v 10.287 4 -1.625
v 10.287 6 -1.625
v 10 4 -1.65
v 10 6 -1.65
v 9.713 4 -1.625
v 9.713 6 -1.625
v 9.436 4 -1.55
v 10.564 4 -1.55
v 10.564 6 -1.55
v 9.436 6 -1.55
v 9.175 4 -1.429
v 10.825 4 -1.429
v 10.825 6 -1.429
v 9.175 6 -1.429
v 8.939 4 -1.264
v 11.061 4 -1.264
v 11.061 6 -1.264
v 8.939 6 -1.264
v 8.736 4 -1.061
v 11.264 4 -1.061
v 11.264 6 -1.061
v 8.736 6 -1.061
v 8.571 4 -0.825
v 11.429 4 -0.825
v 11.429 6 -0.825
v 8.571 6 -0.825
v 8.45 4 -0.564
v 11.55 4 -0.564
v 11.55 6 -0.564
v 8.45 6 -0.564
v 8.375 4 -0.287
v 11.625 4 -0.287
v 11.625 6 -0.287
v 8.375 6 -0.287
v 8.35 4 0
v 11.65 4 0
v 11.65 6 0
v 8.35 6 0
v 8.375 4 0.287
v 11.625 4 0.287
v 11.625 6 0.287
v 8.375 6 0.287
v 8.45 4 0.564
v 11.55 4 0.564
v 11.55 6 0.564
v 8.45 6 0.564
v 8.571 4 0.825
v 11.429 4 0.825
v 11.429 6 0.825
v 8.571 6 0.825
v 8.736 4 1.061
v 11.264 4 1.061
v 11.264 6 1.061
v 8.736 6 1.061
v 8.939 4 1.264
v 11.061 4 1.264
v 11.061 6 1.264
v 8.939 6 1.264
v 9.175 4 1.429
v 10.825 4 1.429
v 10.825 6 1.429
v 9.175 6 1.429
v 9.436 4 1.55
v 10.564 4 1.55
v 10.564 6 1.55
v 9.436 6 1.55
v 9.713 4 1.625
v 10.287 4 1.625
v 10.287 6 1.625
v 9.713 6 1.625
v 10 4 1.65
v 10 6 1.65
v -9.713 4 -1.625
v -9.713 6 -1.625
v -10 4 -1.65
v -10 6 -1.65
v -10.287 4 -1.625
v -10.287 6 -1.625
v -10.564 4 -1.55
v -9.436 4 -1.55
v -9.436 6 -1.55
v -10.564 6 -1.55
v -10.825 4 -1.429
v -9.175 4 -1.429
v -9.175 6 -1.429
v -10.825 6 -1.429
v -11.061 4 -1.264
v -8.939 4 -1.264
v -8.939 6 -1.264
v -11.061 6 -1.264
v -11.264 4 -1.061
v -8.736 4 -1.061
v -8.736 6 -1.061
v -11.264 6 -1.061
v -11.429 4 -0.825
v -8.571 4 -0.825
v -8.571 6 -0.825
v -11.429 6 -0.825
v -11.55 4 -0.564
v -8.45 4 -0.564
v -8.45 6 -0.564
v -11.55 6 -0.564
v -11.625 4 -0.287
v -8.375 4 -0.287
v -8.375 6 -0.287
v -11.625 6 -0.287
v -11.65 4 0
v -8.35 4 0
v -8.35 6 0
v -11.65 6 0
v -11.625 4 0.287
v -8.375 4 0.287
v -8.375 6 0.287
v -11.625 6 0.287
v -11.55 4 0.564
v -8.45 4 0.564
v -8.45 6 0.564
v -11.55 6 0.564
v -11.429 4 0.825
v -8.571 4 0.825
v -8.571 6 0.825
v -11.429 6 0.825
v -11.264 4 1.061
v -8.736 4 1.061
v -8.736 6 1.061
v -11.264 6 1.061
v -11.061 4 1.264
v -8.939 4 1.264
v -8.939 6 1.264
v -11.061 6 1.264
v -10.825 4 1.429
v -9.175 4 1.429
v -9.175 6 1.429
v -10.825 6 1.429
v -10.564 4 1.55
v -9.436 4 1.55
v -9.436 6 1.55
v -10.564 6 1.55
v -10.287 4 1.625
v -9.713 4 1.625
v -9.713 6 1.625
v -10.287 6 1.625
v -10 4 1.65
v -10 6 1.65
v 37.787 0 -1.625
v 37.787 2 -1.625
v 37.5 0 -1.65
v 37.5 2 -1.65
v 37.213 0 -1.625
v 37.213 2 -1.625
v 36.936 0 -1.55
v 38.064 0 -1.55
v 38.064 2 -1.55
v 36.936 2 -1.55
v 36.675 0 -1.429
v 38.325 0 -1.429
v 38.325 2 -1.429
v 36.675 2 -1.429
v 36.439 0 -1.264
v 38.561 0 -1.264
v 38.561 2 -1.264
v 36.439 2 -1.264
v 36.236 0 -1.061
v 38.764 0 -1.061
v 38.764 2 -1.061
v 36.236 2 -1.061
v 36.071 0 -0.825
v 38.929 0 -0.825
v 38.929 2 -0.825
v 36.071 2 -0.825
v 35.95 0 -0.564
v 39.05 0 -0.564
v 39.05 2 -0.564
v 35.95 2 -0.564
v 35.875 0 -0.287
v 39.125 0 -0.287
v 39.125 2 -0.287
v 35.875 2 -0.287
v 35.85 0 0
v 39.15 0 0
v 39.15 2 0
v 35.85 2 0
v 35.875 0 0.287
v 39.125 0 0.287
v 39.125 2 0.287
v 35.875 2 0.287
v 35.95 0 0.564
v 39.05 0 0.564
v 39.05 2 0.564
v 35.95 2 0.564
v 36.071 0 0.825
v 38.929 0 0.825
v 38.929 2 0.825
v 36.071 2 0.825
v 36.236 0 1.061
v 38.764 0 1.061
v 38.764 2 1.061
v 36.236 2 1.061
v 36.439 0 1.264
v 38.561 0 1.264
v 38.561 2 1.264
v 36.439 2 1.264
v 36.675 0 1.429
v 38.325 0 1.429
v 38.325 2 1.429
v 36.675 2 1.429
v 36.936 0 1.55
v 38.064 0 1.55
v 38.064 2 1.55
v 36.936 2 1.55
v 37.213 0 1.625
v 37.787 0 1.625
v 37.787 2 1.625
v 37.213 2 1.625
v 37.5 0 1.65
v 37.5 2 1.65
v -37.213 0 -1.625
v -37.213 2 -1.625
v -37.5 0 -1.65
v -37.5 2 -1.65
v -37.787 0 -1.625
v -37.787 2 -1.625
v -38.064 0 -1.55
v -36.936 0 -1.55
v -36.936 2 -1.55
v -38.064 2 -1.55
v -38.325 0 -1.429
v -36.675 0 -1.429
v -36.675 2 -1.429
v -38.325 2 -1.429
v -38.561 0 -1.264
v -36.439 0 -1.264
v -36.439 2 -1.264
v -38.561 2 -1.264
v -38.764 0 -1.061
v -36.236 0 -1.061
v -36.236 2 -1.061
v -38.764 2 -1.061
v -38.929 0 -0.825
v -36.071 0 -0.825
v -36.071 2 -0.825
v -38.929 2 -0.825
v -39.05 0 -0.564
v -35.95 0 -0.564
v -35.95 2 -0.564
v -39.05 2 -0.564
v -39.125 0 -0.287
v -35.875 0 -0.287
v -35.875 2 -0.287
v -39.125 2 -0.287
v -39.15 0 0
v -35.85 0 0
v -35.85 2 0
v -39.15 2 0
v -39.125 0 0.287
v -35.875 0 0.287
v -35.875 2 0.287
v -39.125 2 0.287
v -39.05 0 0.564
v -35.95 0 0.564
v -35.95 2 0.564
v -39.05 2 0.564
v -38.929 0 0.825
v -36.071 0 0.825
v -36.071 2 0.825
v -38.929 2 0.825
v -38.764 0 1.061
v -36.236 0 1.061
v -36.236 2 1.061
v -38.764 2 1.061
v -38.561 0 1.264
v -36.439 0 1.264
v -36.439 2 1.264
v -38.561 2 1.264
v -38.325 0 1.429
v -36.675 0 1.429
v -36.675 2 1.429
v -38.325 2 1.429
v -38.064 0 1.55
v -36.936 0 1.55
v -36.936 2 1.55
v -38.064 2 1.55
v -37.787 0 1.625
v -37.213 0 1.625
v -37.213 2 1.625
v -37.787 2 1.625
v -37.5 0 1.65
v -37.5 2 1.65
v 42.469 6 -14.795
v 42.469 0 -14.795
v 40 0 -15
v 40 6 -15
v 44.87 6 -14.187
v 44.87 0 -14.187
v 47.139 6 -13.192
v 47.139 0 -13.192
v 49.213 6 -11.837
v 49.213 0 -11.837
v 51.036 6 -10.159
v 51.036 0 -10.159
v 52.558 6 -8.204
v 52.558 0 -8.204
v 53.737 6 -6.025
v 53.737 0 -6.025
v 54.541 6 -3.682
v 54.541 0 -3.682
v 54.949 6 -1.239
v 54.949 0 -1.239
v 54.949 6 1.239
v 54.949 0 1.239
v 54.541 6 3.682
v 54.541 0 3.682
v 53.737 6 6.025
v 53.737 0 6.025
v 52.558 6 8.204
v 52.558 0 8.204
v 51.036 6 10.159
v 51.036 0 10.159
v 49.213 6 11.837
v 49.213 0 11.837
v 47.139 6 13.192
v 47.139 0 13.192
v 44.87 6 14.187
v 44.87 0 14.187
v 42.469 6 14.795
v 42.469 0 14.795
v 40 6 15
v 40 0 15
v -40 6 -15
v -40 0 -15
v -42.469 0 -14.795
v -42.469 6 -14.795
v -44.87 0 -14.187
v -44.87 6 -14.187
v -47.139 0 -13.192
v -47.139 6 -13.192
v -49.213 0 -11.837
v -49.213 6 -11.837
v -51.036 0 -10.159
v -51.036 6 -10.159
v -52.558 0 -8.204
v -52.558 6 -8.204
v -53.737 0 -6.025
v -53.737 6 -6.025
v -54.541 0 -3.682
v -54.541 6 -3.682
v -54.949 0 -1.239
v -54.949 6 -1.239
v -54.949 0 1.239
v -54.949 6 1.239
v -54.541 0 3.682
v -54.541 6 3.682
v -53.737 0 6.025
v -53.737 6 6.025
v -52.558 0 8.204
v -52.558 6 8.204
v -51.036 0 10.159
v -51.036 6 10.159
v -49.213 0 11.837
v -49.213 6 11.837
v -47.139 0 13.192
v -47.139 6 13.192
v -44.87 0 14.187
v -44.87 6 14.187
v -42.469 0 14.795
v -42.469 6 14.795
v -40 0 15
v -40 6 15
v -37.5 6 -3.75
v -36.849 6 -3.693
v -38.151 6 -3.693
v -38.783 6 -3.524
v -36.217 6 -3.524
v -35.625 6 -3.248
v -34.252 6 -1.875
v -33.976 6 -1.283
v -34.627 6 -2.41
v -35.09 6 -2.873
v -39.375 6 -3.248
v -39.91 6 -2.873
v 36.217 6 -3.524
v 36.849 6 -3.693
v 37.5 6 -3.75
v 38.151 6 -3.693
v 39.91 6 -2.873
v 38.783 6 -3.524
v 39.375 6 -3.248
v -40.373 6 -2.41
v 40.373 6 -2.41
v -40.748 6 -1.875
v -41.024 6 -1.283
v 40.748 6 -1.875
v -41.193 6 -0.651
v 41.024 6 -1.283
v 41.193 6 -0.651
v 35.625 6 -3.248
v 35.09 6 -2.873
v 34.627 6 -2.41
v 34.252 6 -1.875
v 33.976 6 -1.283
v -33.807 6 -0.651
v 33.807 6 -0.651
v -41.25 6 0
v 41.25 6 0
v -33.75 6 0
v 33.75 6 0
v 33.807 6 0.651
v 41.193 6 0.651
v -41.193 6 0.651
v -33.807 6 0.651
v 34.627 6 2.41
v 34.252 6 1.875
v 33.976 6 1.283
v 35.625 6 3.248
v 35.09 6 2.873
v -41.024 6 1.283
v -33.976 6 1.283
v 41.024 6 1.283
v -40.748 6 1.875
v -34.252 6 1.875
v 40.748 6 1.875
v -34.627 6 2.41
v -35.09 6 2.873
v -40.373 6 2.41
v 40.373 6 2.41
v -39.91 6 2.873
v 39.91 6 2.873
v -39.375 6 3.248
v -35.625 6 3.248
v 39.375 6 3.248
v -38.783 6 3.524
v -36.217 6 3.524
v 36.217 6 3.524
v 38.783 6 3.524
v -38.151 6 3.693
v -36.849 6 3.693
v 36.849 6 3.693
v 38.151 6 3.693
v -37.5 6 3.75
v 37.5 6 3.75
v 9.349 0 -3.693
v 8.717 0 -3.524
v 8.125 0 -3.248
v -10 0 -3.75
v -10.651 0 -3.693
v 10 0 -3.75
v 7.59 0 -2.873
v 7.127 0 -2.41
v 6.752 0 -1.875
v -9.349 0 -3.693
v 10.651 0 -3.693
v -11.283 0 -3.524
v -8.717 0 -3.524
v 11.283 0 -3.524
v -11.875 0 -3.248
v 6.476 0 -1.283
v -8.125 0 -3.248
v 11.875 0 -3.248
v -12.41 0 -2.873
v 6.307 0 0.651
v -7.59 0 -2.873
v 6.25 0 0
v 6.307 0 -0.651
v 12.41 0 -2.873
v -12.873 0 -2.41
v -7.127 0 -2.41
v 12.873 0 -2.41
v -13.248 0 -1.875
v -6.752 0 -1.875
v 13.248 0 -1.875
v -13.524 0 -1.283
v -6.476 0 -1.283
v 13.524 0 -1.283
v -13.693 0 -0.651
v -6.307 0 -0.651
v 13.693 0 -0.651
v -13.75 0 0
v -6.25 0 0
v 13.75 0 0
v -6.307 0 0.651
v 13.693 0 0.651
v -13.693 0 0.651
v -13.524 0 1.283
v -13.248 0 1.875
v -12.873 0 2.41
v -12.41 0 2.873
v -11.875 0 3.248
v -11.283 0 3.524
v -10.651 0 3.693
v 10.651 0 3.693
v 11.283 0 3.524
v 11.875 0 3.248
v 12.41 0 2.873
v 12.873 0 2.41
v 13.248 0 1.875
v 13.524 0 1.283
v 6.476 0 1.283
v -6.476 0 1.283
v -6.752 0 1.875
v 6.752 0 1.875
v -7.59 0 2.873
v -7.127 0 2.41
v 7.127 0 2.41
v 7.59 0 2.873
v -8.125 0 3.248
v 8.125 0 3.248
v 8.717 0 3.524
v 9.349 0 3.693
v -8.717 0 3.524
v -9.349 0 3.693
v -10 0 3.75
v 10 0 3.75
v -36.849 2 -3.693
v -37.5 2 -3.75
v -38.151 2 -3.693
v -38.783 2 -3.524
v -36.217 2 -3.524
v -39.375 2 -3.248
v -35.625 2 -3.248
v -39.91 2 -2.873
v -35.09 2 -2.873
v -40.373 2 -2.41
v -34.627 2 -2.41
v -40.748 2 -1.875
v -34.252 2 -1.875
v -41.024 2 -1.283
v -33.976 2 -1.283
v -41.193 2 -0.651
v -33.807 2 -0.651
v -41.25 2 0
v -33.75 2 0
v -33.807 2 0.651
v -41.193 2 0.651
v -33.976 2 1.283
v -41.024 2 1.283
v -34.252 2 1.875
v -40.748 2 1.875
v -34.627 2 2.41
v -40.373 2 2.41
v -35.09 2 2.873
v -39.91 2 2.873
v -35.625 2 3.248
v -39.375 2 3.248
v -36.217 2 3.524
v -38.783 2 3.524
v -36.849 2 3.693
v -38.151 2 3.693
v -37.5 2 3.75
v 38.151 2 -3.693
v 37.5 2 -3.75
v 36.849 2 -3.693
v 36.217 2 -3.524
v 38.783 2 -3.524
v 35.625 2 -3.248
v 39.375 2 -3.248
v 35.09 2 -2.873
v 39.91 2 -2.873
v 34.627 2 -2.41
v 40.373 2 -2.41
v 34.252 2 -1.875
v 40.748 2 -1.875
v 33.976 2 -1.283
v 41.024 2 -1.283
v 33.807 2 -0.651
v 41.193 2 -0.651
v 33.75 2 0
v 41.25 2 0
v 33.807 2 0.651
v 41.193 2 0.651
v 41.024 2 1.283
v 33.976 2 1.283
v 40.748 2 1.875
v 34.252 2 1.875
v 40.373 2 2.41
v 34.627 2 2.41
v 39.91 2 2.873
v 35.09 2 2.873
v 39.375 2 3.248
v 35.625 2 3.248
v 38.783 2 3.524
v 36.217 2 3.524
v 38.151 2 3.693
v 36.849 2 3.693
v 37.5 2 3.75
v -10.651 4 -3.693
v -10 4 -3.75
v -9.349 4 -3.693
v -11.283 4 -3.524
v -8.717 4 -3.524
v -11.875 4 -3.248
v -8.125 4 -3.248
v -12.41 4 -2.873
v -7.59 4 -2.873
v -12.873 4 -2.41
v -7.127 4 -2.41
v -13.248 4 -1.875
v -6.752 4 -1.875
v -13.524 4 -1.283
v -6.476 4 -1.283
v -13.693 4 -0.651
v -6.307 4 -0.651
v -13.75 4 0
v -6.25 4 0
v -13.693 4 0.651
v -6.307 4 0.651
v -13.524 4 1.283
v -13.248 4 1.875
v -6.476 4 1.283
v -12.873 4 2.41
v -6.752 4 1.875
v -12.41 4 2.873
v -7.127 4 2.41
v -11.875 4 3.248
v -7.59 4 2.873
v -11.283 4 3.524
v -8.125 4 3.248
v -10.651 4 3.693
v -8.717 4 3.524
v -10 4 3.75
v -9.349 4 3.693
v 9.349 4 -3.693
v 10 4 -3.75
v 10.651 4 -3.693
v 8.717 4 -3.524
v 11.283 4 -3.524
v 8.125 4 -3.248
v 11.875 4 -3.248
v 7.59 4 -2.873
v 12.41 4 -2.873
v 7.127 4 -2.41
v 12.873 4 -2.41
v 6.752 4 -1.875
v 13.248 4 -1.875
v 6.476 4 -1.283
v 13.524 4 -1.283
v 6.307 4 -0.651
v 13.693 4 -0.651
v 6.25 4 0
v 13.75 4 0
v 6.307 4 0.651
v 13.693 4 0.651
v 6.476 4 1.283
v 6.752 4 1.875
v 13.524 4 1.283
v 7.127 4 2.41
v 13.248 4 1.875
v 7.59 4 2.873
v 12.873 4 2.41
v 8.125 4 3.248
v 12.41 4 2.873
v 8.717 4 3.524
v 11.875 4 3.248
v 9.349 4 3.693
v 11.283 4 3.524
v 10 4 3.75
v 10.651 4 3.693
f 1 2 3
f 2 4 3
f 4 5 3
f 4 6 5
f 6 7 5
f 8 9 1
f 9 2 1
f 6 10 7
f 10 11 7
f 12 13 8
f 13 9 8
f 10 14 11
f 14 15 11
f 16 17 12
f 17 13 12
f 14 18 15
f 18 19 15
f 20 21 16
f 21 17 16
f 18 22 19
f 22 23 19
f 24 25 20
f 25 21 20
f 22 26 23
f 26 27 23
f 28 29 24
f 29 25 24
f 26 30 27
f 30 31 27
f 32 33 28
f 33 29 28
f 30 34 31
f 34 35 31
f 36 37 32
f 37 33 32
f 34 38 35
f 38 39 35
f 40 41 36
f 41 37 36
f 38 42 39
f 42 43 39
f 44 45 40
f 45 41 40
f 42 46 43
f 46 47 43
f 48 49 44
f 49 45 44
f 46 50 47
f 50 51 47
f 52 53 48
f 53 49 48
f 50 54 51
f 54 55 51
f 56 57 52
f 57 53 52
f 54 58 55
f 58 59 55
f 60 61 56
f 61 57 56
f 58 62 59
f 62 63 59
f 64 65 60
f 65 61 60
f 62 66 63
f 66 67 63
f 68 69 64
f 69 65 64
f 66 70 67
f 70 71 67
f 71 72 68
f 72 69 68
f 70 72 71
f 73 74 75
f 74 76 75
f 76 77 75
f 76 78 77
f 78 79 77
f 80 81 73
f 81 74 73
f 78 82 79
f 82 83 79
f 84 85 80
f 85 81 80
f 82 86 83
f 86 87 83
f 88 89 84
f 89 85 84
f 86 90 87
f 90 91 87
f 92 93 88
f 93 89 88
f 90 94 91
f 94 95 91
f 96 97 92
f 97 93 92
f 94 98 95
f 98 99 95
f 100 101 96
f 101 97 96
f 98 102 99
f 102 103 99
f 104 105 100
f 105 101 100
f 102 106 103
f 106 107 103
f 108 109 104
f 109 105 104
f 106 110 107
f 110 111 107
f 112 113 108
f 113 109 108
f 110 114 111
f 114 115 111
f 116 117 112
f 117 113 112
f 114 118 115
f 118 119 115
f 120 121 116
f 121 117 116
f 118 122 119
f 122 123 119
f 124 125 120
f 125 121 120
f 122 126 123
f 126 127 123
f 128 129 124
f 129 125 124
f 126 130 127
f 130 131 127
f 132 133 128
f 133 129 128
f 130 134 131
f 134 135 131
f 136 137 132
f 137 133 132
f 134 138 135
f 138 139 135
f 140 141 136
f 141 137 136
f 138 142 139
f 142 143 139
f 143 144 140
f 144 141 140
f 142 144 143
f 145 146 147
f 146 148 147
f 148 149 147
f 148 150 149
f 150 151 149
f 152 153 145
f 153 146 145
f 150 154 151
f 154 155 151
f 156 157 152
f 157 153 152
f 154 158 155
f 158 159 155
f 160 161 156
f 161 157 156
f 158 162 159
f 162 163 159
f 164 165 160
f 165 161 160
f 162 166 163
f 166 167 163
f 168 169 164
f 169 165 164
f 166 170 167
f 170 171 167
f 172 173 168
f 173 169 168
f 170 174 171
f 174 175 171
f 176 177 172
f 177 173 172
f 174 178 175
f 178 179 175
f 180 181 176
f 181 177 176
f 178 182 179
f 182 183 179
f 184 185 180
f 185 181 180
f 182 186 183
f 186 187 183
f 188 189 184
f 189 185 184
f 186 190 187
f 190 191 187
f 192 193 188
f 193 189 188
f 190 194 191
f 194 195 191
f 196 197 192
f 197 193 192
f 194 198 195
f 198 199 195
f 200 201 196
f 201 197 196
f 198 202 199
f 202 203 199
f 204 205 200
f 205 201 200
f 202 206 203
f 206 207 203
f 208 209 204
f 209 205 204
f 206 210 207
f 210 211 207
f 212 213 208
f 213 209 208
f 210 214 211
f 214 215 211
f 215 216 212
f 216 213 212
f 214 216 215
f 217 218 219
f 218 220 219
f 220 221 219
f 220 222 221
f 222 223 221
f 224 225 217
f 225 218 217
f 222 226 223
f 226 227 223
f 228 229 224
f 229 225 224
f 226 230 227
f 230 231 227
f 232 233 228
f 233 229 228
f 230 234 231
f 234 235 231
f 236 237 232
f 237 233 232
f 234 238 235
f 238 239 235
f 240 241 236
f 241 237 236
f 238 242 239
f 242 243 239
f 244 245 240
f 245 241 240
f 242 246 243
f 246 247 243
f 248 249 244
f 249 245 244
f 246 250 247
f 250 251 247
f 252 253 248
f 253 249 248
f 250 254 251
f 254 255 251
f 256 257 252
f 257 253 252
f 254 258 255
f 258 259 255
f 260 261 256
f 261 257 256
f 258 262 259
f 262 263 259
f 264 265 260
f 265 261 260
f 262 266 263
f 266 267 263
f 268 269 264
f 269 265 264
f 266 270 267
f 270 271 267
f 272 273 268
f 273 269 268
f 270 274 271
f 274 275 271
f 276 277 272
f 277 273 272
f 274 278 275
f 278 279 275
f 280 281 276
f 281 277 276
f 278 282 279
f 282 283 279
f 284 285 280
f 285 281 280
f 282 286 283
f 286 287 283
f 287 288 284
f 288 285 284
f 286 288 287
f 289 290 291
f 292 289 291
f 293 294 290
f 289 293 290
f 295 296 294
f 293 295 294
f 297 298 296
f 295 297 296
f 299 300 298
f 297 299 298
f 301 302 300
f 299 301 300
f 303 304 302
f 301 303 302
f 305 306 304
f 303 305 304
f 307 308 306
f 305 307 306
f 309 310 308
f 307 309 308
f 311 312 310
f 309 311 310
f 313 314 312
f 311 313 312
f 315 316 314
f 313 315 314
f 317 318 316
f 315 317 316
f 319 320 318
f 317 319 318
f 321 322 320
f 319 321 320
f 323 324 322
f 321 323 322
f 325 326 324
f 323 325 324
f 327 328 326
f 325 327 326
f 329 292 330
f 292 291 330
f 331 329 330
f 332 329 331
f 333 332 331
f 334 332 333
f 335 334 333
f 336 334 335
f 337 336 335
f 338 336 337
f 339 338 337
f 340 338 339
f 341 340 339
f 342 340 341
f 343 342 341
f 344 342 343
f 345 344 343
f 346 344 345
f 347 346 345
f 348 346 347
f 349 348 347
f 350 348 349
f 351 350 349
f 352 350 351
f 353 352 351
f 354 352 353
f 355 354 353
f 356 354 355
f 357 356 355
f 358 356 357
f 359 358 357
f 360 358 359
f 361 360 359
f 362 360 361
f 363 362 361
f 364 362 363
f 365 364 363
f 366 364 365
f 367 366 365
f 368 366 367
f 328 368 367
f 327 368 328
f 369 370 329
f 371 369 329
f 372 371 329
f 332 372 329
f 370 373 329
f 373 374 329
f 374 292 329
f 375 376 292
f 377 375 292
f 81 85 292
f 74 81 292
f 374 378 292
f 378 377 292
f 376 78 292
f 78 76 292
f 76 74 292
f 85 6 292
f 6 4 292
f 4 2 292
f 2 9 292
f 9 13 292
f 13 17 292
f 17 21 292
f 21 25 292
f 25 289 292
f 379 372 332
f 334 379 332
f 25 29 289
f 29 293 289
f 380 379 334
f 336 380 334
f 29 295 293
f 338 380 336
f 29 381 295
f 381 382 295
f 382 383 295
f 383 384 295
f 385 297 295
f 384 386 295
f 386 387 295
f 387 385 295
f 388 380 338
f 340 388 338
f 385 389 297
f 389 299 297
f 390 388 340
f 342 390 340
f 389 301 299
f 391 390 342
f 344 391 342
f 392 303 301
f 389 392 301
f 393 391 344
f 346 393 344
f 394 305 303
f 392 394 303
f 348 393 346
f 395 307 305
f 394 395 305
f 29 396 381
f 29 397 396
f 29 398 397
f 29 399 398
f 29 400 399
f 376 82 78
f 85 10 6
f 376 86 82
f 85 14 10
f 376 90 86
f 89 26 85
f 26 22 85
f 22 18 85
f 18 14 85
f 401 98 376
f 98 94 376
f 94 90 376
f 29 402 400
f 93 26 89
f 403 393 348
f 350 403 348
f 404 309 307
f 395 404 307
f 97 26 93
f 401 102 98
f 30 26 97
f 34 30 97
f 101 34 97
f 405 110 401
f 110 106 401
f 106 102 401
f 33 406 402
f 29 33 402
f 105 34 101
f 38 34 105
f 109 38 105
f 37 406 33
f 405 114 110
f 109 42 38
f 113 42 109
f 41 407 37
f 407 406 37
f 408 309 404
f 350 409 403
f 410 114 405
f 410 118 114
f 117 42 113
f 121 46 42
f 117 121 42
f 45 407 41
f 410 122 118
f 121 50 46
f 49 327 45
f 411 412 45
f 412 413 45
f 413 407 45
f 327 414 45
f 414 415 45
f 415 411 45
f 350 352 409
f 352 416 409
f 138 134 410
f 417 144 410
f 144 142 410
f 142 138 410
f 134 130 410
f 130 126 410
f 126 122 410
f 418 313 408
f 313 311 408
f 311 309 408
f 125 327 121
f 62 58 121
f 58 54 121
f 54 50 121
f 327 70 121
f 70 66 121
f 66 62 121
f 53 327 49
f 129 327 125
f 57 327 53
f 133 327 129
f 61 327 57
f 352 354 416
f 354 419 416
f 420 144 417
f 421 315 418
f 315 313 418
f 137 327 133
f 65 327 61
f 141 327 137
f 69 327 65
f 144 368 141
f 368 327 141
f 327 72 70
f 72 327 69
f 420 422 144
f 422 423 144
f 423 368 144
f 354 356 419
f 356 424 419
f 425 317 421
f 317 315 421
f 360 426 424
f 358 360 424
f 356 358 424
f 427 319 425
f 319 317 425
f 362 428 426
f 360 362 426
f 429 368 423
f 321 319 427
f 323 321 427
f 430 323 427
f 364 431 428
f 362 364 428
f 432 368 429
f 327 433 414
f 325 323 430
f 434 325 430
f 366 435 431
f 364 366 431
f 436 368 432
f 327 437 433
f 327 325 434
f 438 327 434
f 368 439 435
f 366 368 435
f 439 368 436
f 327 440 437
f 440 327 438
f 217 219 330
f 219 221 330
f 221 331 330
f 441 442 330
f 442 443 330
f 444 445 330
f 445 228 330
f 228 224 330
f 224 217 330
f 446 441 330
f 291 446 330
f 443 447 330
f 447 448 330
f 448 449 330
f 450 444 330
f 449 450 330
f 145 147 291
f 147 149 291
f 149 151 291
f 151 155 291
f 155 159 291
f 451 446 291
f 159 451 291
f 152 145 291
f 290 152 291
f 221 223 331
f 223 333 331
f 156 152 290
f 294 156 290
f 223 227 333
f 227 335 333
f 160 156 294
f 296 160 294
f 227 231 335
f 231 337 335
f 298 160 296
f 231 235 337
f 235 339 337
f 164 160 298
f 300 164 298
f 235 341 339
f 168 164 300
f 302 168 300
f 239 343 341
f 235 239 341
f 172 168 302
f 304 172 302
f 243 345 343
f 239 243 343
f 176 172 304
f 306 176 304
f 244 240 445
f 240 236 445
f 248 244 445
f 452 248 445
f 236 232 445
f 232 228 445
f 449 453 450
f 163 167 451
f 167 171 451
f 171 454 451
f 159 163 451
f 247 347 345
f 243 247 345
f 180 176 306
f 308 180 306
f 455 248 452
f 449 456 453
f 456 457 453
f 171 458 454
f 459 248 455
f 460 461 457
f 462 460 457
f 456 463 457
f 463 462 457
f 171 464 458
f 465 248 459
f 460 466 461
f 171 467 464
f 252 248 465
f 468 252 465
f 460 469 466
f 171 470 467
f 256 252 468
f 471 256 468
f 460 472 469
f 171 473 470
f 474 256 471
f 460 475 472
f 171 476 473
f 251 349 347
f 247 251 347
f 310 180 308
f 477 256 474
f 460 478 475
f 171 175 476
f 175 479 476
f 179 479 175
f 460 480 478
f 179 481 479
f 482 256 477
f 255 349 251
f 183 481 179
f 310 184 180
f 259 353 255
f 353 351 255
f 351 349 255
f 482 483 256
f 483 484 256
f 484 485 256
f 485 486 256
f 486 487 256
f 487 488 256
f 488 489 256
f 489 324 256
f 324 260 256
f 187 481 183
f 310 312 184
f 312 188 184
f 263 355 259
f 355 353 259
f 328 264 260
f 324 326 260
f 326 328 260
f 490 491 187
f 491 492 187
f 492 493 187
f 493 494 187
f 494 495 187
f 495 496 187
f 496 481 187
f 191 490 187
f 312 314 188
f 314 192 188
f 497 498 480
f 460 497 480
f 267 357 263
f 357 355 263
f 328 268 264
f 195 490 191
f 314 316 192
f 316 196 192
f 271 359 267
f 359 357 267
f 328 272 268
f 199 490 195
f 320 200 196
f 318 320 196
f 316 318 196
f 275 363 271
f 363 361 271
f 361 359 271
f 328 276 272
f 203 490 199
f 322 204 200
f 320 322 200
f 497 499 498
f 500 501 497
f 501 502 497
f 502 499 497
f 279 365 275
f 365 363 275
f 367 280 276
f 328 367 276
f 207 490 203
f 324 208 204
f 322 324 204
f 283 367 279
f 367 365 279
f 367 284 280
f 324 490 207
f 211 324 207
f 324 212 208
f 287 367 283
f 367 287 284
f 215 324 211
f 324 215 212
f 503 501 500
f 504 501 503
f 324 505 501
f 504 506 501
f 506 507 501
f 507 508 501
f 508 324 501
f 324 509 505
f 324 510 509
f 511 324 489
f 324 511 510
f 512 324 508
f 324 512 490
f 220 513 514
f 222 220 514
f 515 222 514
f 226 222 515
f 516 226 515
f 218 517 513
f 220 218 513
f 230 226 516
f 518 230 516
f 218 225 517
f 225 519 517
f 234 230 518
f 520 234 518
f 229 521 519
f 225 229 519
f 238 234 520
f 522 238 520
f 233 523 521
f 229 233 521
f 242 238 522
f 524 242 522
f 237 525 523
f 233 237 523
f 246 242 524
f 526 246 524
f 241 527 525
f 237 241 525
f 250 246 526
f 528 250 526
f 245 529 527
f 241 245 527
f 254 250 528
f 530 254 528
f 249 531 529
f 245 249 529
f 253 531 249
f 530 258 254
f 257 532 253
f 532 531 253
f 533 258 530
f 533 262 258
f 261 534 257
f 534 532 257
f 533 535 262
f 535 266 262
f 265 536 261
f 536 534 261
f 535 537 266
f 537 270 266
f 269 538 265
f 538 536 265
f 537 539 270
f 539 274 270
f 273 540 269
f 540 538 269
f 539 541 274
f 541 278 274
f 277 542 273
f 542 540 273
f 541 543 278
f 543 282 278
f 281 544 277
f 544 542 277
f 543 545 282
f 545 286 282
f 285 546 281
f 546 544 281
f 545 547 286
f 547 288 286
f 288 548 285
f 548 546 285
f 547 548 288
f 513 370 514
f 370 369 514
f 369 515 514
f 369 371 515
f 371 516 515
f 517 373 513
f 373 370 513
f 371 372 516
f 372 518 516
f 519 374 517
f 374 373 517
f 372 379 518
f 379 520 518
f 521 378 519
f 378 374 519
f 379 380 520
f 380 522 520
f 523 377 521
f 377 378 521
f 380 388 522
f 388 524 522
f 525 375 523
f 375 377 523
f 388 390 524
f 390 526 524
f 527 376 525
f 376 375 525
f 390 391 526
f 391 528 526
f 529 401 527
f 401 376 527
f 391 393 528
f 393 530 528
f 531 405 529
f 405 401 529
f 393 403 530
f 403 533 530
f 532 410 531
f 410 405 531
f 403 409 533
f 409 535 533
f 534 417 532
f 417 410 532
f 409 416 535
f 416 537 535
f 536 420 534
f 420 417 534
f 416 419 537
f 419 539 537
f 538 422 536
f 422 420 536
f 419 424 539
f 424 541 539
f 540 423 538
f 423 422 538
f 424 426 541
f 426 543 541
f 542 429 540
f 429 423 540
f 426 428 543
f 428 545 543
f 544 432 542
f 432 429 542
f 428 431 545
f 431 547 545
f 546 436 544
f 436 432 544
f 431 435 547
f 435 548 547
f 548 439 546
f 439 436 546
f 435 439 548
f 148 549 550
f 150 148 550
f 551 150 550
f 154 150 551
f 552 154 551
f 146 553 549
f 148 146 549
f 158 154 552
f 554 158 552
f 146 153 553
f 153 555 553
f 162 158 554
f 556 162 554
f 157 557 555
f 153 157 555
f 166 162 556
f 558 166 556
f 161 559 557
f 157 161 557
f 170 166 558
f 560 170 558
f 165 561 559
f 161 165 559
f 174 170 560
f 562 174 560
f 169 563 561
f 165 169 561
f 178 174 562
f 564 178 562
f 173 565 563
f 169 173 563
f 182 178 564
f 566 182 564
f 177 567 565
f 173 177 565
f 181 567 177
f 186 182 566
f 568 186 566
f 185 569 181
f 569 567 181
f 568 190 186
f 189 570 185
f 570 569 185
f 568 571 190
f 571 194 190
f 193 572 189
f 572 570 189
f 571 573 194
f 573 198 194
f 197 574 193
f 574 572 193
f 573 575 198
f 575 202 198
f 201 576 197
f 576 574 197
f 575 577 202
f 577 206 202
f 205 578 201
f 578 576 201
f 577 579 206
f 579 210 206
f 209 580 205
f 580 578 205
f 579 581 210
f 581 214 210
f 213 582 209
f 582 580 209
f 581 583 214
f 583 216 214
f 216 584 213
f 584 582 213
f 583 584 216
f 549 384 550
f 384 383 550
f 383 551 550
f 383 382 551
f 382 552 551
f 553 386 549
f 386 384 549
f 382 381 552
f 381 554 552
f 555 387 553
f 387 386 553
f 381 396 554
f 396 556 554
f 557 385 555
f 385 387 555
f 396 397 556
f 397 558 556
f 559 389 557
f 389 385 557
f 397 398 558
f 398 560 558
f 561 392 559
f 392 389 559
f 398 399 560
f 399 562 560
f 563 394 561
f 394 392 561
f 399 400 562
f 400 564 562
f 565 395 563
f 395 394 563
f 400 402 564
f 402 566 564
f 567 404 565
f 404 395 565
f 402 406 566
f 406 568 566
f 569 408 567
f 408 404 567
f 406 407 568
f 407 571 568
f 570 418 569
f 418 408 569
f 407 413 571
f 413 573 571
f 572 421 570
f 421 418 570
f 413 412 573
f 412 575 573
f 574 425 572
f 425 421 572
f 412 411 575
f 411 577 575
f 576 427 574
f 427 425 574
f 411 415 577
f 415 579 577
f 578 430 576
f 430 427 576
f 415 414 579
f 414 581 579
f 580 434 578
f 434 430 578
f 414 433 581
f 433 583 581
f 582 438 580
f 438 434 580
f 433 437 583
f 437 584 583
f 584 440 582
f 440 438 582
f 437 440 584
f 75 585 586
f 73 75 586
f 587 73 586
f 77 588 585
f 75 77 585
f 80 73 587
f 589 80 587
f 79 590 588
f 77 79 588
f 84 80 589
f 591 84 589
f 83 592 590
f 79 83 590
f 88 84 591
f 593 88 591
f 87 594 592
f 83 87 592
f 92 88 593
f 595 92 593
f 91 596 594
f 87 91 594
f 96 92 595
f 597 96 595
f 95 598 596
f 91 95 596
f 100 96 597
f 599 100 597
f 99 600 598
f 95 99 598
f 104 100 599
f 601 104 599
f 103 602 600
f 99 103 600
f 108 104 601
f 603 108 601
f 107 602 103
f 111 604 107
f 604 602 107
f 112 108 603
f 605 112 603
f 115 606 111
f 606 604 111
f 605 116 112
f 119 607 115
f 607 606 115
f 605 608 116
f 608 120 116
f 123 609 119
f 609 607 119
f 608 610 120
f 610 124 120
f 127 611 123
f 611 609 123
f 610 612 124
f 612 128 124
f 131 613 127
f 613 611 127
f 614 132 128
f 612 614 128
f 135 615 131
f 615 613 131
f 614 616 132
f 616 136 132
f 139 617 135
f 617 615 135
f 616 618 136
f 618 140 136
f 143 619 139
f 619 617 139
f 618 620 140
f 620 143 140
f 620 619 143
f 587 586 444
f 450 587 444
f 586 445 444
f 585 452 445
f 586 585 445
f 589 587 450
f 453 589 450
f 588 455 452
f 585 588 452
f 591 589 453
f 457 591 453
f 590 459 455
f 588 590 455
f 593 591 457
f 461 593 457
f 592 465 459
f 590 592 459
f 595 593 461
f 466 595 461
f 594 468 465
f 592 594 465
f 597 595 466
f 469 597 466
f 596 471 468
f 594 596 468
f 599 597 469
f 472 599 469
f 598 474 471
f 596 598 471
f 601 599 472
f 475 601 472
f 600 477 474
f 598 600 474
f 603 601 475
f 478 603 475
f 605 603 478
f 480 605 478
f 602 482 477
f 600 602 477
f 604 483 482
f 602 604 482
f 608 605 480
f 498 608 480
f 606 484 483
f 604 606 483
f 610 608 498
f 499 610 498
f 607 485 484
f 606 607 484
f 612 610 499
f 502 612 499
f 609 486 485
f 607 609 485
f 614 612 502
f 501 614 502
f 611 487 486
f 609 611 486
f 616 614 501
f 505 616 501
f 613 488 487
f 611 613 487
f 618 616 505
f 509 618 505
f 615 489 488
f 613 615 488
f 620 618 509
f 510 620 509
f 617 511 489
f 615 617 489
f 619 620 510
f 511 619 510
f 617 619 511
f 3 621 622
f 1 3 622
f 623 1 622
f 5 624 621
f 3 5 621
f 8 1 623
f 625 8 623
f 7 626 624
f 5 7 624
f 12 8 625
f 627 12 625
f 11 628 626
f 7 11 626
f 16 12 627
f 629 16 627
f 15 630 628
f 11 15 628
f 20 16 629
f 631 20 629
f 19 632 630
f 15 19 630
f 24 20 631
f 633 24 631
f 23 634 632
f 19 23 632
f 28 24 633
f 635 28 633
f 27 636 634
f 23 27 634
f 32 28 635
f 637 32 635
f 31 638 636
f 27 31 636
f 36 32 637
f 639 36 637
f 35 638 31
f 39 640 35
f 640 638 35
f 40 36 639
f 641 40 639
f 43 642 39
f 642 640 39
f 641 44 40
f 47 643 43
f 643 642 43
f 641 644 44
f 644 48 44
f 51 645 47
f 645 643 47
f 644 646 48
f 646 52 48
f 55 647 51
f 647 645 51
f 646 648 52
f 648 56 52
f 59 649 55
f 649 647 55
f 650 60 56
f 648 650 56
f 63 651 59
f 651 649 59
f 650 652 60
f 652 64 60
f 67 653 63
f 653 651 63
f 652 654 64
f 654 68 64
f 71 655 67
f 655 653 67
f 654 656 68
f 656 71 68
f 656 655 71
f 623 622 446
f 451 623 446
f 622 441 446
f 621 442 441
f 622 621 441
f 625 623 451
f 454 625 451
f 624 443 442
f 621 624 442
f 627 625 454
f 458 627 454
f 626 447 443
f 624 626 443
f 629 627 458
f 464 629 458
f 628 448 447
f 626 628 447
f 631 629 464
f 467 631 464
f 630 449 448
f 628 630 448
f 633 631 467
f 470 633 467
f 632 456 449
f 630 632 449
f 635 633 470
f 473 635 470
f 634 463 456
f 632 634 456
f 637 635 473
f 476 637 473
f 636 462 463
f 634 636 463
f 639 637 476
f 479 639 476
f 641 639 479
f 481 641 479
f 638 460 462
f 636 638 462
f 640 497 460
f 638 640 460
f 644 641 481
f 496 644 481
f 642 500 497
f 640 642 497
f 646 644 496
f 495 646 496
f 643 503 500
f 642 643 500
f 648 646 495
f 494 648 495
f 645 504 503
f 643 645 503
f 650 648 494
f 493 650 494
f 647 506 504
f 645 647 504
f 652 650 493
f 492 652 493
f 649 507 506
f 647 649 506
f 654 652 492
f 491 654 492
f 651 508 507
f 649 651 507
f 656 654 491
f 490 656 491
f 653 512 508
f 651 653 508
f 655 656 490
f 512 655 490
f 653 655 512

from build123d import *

# Parameters (mm, degrees)
BOSS_EXTRUDE1_DEPTH = 6
M4_TAPPED_HOLE5_D   = 3.3
LPATTERN3_COUNT     = 2
LPATTERN3_PITCH     = 75
LPATTERN4_COUNT     = 2
LPATTERN4_PITCH     = 20
SKETCH15_R          = 3.75
CUT_EXTRUDE1_DEPTH  = 4
SKETCH16_R          = 3.75
CUT_EXTRUDE3_DEPTH  = 4


with BuildPart() as part:
    # Sketch1 → Boss-Extrude1 (new body)
    with BuildSketch(Plane(origin=(0, 0, 0), x_dir=(1, 0, 0), z_dir=(0, 1, 0))):
        with BuildLine():
            Line((-40, 15), (40, 15))
            ThreePointArc((40, 15), (55, 0), (40, -15))
            Line((40, -15), (-40, -15))
            ThreePointArc((-40, -15), (-55, 0), (-40, 15))
        make_face()
    extrude(amount=BOSS_EXTRUDE1_DEPTH)

    # Sketch4 → M4 Tapped Hole3 (revolve, cut)
    with BuildSketch(Plane(origin=(37.5, 6, 0), x_dir=(0, 0, 1), z_dir=(1, 0, 0))):
        Polygon((0, 0), (0, 12.491420021), (1.65, 11.5), (1.65, 0), align=None)
    m4_tapped_hole3 = revolve(axis=Axis((37.5, 12.35, 0), (0, -1, 0)), mode=Mode.SUBTRACT)

    # M4 Tapped Hole5 (through all)
    with Locations(Plane(origin=(10, 6, 0), x_dir=(0, 0, 1), z_dir=(0, 1, 0))):
        with Locations((0, 0)):
            m4_tapped_hole5 = Hole(M4_TAPPED_HOLE5_D / 2)

    # LPattern3: M4 Tapped Hole3 ×2
    with Locations(*[(-i * LPATTERN3_PITCH, 0, 0) for i in range(1, LPATTERN3_COUNT)]):
        add(m4_tapped_hole3, mode=Mode.SUBTRACT)

    # LPattern4: M4 Tapped Hole5 ×2
    with Locations(*[(-i * LPATTERN4_PITCH, 0, 0) for i in range(1, LPATTERN4_COUNT)]):
        add(m4_tapped_hole5, mode=Mode.SUBTRACT)

    # Sketch15 → Cut-Extrude1 (cut)
    with BuildSketch(Plane(origin=(0, 6, 0), x_dir=(1, 0, 0), z_dir=(0, 1, 0))):
        with Locations(Location((37.5, 0, 0), (0, 0, 270))):
            Circle(SKETCH15_R)
        with Locations(Location((-37.5, 0, 0), (0, 0, 270))):
            Circle(SKETCH15_R)
    extrude(amount=-CUT_EXTRUDE1_DEPTH, mode=Mode.SUBTRACT)

    # Sketch16 → Cut-Extrude3 (cut)
    with BuildSketch(Plane.XZ):
        with Locations(Location((-10, 0, 0), (0, 0, 270))):
            Circle(SKETCH16_R)
        with Locations(Location((10, 0, 0), (0, 0, 270))):
            Circle(SKETCH16_R)
    extrude(amount=-CUT_EXTRUDE3_DEPTH, mode=Mode.SUBTRACT)


solid = part.part
